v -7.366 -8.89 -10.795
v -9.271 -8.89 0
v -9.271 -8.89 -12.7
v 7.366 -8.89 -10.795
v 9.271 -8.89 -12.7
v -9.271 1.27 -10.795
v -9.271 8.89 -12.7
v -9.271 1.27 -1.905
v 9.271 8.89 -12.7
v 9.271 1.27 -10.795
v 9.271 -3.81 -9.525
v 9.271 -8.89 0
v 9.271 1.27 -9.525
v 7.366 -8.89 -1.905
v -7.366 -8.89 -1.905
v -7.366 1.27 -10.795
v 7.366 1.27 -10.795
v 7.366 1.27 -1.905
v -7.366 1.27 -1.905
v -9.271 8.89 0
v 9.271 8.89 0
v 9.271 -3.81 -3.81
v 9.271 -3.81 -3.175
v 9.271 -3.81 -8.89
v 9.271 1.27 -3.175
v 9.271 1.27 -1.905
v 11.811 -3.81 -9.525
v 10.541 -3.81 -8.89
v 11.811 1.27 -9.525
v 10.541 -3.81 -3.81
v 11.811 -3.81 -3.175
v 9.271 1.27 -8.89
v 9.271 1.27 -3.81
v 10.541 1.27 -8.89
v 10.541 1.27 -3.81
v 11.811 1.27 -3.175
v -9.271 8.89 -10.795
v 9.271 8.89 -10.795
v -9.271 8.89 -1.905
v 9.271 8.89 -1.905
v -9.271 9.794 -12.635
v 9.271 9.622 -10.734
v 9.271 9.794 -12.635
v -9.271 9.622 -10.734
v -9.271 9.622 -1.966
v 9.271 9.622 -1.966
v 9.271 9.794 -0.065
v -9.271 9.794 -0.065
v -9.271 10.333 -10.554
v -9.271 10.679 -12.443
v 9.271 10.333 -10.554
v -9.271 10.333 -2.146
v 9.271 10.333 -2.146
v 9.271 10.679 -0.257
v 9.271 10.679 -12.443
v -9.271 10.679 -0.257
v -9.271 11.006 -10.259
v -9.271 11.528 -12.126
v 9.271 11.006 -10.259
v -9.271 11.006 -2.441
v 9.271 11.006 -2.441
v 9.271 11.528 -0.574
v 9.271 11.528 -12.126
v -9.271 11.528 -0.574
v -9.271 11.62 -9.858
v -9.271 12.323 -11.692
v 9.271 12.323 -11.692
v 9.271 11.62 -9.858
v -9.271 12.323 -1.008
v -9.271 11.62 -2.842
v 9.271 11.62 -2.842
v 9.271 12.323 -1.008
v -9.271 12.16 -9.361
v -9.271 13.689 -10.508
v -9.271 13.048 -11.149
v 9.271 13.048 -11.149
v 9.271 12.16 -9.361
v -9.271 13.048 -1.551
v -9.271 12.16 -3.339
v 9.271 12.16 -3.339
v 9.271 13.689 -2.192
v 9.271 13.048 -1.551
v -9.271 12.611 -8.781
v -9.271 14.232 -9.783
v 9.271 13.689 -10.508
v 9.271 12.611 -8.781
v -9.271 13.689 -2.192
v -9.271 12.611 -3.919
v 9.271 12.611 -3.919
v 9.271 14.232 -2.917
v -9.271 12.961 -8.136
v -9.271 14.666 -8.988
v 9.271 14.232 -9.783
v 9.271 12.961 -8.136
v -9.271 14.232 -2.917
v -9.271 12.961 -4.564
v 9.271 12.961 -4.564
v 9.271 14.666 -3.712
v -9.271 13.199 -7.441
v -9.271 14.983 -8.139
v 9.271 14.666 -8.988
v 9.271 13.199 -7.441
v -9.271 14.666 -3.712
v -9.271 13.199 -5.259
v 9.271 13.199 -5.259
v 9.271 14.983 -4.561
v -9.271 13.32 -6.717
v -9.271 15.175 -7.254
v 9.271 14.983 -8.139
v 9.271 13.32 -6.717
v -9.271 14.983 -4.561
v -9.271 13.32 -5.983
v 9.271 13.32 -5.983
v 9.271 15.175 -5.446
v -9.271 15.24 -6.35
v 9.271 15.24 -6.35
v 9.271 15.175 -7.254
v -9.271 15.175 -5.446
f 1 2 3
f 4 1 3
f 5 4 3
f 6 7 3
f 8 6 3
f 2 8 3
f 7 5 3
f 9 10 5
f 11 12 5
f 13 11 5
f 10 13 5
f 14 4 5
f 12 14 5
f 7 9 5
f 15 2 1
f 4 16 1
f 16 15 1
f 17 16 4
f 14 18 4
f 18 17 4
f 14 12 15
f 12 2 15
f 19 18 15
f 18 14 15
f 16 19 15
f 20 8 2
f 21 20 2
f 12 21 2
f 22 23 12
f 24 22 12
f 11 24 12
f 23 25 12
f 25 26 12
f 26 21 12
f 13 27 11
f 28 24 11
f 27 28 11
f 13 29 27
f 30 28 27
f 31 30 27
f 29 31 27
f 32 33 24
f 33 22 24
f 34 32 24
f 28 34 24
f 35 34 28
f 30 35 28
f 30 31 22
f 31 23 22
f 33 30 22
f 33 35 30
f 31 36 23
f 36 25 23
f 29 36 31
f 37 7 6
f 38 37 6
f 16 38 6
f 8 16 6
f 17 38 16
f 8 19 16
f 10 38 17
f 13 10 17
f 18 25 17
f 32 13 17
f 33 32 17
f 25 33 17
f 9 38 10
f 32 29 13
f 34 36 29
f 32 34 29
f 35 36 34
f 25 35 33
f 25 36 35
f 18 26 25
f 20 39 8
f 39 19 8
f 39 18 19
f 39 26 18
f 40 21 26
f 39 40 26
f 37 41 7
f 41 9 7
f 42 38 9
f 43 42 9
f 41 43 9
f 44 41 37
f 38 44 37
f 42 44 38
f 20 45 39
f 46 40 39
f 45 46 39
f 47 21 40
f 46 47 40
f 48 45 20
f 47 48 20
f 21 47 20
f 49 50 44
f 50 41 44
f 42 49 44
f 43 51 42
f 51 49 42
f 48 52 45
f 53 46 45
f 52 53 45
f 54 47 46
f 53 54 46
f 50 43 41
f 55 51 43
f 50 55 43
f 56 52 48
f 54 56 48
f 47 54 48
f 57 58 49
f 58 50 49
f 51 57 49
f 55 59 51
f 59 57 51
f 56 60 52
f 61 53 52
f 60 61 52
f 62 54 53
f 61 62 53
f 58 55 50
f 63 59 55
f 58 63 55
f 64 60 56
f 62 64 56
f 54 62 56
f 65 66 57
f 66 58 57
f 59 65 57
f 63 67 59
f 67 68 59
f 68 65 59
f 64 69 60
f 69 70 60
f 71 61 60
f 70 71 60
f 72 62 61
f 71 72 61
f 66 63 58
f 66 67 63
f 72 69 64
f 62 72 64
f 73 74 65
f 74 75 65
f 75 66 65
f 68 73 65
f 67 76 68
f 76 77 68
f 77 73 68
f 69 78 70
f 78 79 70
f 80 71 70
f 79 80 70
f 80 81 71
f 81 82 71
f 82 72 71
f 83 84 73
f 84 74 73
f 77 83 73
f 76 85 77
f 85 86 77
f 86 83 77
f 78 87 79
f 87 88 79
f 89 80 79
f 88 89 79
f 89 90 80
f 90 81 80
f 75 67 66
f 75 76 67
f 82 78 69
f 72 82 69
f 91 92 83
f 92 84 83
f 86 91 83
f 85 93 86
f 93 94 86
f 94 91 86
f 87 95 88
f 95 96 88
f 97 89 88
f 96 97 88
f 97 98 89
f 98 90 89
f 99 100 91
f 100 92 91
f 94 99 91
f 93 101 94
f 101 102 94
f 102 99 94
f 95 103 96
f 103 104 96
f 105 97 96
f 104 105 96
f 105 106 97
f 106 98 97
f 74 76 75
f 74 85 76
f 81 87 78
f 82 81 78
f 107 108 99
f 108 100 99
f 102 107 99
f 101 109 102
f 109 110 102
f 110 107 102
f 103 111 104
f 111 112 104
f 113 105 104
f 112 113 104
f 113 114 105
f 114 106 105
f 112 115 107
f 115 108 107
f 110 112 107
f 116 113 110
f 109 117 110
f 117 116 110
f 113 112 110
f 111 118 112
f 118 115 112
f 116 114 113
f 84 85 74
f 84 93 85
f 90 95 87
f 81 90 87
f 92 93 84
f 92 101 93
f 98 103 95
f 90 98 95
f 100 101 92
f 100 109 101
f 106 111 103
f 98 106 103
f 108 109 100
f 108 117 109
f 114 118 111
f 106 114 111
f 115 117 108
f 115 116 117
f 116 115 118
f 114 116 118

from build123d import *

# Parameters (mm, degrees)
SKETCH1_W           = 18.542
SKETCH1_H           = 17.78
BOSS_EXTRUDE4_DEPTH = 1.905
SKETCH4_W           = 18.542
SKETCH4_H           = 17.78
BOSS_EXTRUDE5_DEPTH = 1.905
BOSS_EXTRUDE6_DEPTH = 18.542
SKETCH7_W           = 8.89
SKETCH7_H           = 10.16
BOSS_EXTRUDE7_DEPTH = 1.905
SKETCH8_W           = 8.89
SKETCH8_H           = 10.16
BOSS_EXTRUDE8_DEPTH = 1.905
SKETCH9_W           = 6.35
SKETCH9_H           = 5.08
BOSS_EXTRUDE9_DEPTH = 2.54
SKETCH10_W          = 1.27
SKETCH10_H          = 5.08
CUT_EXTRUDE1_DEPTH  = 23.269948832


with BuildPart() as part:
    # Sketch1 → Boss-Extrude4 (new body)
    with BuildSketch(Plane.XY):
        Rectangle(SKETCH1_W, SKETCH1_H)
    extrude(amount=-BOSS_EXTRUDE4_DEPTH)



with BuildPart() as body_2:
    # Sketch4 → Boss-Extrude5 (new body)
    with BuildSketch(Plane.XY.offset(-12.7)):
        Rectangle(SKETCH4_W, SKETCH4_H)
    extrude(amount=BOSS_EXTRUDE5_DEPTH)


with BuildPart() as part_1:
    add(part.part)

    add(body_2.part)  # Boss-Extrude6 merges body 2
    # Sketch6 → Boss-Extrude6 (add)
    with BuildSketch(Plane.ZY.offset(9.271)):
        with BuildLine():
            Line((-12.7, 8.89), (-10.795, 8.89))
            ThreePointArc((-10.795, 8.89), (-6.35, 13.335), (-1.905, 8.89))
            Line((-1.905, 8.89), (0, 8.89))
            ThreePointArc((0, 8.89), (-6.35, 15.24), (-12.7, 8.89))
        make_face()
    extrude(amount=-BOSS_EXTRUDE6_DEPTH)

    # Sketch7 → Boss-Extrude7 (add)
    with BuildSketch(Plane.ZY.offset(9.271)):
        with Locations((-6.35, -3.81)):
            Rectangle(SKETCH7_W, SKETCH7_H)
    extrude(amount=-BOSS_EXTRUDE7_DEPTH)

    # Sketch8 → Boss-Extrude8 (add)
    with BuildSketch(Plane(origin=(9.271, 0, 0), x_dir=(0, 0, -1), z_dir=(1, 0, 0))):
        with Locations((6.35, -3.81)):
            Rectangle(SKETCH8_W, SKETCH8_H)
    extrude(amount=-BOSS_EXTRUDE8_DEPTH)

    # Sketch9 → Boss-Extrude9 (add)
    with BuildSketch(Plane(origin=(9.271, 0, 0), x_dir=(0, 0, -1), z_dir=(1, 0, 0))):
        with Locations((6.35, -1.27)):
            Rectangle(SKETCH9_W, SKETCH9_H)
    extrude(amount=BOSS_EXTRUDE9_DEPTH)

    # Sketch10 → Cut-Extrude1 (cut, through all)
    with BuildSketch(Plane(origin=(0, 1.27, 0), x_dir=(1, 0, 0), z_dir=(0, 1, 0))):
        with Locations((9.906, 6.35)):
            Rectangle(SKETCH10_W, SKETCH10_H)
    extrude(amount=-CUT_EXTRUDE1_DEPTH, mode=Mode.SUBTRACT)


solid = part_1.part
